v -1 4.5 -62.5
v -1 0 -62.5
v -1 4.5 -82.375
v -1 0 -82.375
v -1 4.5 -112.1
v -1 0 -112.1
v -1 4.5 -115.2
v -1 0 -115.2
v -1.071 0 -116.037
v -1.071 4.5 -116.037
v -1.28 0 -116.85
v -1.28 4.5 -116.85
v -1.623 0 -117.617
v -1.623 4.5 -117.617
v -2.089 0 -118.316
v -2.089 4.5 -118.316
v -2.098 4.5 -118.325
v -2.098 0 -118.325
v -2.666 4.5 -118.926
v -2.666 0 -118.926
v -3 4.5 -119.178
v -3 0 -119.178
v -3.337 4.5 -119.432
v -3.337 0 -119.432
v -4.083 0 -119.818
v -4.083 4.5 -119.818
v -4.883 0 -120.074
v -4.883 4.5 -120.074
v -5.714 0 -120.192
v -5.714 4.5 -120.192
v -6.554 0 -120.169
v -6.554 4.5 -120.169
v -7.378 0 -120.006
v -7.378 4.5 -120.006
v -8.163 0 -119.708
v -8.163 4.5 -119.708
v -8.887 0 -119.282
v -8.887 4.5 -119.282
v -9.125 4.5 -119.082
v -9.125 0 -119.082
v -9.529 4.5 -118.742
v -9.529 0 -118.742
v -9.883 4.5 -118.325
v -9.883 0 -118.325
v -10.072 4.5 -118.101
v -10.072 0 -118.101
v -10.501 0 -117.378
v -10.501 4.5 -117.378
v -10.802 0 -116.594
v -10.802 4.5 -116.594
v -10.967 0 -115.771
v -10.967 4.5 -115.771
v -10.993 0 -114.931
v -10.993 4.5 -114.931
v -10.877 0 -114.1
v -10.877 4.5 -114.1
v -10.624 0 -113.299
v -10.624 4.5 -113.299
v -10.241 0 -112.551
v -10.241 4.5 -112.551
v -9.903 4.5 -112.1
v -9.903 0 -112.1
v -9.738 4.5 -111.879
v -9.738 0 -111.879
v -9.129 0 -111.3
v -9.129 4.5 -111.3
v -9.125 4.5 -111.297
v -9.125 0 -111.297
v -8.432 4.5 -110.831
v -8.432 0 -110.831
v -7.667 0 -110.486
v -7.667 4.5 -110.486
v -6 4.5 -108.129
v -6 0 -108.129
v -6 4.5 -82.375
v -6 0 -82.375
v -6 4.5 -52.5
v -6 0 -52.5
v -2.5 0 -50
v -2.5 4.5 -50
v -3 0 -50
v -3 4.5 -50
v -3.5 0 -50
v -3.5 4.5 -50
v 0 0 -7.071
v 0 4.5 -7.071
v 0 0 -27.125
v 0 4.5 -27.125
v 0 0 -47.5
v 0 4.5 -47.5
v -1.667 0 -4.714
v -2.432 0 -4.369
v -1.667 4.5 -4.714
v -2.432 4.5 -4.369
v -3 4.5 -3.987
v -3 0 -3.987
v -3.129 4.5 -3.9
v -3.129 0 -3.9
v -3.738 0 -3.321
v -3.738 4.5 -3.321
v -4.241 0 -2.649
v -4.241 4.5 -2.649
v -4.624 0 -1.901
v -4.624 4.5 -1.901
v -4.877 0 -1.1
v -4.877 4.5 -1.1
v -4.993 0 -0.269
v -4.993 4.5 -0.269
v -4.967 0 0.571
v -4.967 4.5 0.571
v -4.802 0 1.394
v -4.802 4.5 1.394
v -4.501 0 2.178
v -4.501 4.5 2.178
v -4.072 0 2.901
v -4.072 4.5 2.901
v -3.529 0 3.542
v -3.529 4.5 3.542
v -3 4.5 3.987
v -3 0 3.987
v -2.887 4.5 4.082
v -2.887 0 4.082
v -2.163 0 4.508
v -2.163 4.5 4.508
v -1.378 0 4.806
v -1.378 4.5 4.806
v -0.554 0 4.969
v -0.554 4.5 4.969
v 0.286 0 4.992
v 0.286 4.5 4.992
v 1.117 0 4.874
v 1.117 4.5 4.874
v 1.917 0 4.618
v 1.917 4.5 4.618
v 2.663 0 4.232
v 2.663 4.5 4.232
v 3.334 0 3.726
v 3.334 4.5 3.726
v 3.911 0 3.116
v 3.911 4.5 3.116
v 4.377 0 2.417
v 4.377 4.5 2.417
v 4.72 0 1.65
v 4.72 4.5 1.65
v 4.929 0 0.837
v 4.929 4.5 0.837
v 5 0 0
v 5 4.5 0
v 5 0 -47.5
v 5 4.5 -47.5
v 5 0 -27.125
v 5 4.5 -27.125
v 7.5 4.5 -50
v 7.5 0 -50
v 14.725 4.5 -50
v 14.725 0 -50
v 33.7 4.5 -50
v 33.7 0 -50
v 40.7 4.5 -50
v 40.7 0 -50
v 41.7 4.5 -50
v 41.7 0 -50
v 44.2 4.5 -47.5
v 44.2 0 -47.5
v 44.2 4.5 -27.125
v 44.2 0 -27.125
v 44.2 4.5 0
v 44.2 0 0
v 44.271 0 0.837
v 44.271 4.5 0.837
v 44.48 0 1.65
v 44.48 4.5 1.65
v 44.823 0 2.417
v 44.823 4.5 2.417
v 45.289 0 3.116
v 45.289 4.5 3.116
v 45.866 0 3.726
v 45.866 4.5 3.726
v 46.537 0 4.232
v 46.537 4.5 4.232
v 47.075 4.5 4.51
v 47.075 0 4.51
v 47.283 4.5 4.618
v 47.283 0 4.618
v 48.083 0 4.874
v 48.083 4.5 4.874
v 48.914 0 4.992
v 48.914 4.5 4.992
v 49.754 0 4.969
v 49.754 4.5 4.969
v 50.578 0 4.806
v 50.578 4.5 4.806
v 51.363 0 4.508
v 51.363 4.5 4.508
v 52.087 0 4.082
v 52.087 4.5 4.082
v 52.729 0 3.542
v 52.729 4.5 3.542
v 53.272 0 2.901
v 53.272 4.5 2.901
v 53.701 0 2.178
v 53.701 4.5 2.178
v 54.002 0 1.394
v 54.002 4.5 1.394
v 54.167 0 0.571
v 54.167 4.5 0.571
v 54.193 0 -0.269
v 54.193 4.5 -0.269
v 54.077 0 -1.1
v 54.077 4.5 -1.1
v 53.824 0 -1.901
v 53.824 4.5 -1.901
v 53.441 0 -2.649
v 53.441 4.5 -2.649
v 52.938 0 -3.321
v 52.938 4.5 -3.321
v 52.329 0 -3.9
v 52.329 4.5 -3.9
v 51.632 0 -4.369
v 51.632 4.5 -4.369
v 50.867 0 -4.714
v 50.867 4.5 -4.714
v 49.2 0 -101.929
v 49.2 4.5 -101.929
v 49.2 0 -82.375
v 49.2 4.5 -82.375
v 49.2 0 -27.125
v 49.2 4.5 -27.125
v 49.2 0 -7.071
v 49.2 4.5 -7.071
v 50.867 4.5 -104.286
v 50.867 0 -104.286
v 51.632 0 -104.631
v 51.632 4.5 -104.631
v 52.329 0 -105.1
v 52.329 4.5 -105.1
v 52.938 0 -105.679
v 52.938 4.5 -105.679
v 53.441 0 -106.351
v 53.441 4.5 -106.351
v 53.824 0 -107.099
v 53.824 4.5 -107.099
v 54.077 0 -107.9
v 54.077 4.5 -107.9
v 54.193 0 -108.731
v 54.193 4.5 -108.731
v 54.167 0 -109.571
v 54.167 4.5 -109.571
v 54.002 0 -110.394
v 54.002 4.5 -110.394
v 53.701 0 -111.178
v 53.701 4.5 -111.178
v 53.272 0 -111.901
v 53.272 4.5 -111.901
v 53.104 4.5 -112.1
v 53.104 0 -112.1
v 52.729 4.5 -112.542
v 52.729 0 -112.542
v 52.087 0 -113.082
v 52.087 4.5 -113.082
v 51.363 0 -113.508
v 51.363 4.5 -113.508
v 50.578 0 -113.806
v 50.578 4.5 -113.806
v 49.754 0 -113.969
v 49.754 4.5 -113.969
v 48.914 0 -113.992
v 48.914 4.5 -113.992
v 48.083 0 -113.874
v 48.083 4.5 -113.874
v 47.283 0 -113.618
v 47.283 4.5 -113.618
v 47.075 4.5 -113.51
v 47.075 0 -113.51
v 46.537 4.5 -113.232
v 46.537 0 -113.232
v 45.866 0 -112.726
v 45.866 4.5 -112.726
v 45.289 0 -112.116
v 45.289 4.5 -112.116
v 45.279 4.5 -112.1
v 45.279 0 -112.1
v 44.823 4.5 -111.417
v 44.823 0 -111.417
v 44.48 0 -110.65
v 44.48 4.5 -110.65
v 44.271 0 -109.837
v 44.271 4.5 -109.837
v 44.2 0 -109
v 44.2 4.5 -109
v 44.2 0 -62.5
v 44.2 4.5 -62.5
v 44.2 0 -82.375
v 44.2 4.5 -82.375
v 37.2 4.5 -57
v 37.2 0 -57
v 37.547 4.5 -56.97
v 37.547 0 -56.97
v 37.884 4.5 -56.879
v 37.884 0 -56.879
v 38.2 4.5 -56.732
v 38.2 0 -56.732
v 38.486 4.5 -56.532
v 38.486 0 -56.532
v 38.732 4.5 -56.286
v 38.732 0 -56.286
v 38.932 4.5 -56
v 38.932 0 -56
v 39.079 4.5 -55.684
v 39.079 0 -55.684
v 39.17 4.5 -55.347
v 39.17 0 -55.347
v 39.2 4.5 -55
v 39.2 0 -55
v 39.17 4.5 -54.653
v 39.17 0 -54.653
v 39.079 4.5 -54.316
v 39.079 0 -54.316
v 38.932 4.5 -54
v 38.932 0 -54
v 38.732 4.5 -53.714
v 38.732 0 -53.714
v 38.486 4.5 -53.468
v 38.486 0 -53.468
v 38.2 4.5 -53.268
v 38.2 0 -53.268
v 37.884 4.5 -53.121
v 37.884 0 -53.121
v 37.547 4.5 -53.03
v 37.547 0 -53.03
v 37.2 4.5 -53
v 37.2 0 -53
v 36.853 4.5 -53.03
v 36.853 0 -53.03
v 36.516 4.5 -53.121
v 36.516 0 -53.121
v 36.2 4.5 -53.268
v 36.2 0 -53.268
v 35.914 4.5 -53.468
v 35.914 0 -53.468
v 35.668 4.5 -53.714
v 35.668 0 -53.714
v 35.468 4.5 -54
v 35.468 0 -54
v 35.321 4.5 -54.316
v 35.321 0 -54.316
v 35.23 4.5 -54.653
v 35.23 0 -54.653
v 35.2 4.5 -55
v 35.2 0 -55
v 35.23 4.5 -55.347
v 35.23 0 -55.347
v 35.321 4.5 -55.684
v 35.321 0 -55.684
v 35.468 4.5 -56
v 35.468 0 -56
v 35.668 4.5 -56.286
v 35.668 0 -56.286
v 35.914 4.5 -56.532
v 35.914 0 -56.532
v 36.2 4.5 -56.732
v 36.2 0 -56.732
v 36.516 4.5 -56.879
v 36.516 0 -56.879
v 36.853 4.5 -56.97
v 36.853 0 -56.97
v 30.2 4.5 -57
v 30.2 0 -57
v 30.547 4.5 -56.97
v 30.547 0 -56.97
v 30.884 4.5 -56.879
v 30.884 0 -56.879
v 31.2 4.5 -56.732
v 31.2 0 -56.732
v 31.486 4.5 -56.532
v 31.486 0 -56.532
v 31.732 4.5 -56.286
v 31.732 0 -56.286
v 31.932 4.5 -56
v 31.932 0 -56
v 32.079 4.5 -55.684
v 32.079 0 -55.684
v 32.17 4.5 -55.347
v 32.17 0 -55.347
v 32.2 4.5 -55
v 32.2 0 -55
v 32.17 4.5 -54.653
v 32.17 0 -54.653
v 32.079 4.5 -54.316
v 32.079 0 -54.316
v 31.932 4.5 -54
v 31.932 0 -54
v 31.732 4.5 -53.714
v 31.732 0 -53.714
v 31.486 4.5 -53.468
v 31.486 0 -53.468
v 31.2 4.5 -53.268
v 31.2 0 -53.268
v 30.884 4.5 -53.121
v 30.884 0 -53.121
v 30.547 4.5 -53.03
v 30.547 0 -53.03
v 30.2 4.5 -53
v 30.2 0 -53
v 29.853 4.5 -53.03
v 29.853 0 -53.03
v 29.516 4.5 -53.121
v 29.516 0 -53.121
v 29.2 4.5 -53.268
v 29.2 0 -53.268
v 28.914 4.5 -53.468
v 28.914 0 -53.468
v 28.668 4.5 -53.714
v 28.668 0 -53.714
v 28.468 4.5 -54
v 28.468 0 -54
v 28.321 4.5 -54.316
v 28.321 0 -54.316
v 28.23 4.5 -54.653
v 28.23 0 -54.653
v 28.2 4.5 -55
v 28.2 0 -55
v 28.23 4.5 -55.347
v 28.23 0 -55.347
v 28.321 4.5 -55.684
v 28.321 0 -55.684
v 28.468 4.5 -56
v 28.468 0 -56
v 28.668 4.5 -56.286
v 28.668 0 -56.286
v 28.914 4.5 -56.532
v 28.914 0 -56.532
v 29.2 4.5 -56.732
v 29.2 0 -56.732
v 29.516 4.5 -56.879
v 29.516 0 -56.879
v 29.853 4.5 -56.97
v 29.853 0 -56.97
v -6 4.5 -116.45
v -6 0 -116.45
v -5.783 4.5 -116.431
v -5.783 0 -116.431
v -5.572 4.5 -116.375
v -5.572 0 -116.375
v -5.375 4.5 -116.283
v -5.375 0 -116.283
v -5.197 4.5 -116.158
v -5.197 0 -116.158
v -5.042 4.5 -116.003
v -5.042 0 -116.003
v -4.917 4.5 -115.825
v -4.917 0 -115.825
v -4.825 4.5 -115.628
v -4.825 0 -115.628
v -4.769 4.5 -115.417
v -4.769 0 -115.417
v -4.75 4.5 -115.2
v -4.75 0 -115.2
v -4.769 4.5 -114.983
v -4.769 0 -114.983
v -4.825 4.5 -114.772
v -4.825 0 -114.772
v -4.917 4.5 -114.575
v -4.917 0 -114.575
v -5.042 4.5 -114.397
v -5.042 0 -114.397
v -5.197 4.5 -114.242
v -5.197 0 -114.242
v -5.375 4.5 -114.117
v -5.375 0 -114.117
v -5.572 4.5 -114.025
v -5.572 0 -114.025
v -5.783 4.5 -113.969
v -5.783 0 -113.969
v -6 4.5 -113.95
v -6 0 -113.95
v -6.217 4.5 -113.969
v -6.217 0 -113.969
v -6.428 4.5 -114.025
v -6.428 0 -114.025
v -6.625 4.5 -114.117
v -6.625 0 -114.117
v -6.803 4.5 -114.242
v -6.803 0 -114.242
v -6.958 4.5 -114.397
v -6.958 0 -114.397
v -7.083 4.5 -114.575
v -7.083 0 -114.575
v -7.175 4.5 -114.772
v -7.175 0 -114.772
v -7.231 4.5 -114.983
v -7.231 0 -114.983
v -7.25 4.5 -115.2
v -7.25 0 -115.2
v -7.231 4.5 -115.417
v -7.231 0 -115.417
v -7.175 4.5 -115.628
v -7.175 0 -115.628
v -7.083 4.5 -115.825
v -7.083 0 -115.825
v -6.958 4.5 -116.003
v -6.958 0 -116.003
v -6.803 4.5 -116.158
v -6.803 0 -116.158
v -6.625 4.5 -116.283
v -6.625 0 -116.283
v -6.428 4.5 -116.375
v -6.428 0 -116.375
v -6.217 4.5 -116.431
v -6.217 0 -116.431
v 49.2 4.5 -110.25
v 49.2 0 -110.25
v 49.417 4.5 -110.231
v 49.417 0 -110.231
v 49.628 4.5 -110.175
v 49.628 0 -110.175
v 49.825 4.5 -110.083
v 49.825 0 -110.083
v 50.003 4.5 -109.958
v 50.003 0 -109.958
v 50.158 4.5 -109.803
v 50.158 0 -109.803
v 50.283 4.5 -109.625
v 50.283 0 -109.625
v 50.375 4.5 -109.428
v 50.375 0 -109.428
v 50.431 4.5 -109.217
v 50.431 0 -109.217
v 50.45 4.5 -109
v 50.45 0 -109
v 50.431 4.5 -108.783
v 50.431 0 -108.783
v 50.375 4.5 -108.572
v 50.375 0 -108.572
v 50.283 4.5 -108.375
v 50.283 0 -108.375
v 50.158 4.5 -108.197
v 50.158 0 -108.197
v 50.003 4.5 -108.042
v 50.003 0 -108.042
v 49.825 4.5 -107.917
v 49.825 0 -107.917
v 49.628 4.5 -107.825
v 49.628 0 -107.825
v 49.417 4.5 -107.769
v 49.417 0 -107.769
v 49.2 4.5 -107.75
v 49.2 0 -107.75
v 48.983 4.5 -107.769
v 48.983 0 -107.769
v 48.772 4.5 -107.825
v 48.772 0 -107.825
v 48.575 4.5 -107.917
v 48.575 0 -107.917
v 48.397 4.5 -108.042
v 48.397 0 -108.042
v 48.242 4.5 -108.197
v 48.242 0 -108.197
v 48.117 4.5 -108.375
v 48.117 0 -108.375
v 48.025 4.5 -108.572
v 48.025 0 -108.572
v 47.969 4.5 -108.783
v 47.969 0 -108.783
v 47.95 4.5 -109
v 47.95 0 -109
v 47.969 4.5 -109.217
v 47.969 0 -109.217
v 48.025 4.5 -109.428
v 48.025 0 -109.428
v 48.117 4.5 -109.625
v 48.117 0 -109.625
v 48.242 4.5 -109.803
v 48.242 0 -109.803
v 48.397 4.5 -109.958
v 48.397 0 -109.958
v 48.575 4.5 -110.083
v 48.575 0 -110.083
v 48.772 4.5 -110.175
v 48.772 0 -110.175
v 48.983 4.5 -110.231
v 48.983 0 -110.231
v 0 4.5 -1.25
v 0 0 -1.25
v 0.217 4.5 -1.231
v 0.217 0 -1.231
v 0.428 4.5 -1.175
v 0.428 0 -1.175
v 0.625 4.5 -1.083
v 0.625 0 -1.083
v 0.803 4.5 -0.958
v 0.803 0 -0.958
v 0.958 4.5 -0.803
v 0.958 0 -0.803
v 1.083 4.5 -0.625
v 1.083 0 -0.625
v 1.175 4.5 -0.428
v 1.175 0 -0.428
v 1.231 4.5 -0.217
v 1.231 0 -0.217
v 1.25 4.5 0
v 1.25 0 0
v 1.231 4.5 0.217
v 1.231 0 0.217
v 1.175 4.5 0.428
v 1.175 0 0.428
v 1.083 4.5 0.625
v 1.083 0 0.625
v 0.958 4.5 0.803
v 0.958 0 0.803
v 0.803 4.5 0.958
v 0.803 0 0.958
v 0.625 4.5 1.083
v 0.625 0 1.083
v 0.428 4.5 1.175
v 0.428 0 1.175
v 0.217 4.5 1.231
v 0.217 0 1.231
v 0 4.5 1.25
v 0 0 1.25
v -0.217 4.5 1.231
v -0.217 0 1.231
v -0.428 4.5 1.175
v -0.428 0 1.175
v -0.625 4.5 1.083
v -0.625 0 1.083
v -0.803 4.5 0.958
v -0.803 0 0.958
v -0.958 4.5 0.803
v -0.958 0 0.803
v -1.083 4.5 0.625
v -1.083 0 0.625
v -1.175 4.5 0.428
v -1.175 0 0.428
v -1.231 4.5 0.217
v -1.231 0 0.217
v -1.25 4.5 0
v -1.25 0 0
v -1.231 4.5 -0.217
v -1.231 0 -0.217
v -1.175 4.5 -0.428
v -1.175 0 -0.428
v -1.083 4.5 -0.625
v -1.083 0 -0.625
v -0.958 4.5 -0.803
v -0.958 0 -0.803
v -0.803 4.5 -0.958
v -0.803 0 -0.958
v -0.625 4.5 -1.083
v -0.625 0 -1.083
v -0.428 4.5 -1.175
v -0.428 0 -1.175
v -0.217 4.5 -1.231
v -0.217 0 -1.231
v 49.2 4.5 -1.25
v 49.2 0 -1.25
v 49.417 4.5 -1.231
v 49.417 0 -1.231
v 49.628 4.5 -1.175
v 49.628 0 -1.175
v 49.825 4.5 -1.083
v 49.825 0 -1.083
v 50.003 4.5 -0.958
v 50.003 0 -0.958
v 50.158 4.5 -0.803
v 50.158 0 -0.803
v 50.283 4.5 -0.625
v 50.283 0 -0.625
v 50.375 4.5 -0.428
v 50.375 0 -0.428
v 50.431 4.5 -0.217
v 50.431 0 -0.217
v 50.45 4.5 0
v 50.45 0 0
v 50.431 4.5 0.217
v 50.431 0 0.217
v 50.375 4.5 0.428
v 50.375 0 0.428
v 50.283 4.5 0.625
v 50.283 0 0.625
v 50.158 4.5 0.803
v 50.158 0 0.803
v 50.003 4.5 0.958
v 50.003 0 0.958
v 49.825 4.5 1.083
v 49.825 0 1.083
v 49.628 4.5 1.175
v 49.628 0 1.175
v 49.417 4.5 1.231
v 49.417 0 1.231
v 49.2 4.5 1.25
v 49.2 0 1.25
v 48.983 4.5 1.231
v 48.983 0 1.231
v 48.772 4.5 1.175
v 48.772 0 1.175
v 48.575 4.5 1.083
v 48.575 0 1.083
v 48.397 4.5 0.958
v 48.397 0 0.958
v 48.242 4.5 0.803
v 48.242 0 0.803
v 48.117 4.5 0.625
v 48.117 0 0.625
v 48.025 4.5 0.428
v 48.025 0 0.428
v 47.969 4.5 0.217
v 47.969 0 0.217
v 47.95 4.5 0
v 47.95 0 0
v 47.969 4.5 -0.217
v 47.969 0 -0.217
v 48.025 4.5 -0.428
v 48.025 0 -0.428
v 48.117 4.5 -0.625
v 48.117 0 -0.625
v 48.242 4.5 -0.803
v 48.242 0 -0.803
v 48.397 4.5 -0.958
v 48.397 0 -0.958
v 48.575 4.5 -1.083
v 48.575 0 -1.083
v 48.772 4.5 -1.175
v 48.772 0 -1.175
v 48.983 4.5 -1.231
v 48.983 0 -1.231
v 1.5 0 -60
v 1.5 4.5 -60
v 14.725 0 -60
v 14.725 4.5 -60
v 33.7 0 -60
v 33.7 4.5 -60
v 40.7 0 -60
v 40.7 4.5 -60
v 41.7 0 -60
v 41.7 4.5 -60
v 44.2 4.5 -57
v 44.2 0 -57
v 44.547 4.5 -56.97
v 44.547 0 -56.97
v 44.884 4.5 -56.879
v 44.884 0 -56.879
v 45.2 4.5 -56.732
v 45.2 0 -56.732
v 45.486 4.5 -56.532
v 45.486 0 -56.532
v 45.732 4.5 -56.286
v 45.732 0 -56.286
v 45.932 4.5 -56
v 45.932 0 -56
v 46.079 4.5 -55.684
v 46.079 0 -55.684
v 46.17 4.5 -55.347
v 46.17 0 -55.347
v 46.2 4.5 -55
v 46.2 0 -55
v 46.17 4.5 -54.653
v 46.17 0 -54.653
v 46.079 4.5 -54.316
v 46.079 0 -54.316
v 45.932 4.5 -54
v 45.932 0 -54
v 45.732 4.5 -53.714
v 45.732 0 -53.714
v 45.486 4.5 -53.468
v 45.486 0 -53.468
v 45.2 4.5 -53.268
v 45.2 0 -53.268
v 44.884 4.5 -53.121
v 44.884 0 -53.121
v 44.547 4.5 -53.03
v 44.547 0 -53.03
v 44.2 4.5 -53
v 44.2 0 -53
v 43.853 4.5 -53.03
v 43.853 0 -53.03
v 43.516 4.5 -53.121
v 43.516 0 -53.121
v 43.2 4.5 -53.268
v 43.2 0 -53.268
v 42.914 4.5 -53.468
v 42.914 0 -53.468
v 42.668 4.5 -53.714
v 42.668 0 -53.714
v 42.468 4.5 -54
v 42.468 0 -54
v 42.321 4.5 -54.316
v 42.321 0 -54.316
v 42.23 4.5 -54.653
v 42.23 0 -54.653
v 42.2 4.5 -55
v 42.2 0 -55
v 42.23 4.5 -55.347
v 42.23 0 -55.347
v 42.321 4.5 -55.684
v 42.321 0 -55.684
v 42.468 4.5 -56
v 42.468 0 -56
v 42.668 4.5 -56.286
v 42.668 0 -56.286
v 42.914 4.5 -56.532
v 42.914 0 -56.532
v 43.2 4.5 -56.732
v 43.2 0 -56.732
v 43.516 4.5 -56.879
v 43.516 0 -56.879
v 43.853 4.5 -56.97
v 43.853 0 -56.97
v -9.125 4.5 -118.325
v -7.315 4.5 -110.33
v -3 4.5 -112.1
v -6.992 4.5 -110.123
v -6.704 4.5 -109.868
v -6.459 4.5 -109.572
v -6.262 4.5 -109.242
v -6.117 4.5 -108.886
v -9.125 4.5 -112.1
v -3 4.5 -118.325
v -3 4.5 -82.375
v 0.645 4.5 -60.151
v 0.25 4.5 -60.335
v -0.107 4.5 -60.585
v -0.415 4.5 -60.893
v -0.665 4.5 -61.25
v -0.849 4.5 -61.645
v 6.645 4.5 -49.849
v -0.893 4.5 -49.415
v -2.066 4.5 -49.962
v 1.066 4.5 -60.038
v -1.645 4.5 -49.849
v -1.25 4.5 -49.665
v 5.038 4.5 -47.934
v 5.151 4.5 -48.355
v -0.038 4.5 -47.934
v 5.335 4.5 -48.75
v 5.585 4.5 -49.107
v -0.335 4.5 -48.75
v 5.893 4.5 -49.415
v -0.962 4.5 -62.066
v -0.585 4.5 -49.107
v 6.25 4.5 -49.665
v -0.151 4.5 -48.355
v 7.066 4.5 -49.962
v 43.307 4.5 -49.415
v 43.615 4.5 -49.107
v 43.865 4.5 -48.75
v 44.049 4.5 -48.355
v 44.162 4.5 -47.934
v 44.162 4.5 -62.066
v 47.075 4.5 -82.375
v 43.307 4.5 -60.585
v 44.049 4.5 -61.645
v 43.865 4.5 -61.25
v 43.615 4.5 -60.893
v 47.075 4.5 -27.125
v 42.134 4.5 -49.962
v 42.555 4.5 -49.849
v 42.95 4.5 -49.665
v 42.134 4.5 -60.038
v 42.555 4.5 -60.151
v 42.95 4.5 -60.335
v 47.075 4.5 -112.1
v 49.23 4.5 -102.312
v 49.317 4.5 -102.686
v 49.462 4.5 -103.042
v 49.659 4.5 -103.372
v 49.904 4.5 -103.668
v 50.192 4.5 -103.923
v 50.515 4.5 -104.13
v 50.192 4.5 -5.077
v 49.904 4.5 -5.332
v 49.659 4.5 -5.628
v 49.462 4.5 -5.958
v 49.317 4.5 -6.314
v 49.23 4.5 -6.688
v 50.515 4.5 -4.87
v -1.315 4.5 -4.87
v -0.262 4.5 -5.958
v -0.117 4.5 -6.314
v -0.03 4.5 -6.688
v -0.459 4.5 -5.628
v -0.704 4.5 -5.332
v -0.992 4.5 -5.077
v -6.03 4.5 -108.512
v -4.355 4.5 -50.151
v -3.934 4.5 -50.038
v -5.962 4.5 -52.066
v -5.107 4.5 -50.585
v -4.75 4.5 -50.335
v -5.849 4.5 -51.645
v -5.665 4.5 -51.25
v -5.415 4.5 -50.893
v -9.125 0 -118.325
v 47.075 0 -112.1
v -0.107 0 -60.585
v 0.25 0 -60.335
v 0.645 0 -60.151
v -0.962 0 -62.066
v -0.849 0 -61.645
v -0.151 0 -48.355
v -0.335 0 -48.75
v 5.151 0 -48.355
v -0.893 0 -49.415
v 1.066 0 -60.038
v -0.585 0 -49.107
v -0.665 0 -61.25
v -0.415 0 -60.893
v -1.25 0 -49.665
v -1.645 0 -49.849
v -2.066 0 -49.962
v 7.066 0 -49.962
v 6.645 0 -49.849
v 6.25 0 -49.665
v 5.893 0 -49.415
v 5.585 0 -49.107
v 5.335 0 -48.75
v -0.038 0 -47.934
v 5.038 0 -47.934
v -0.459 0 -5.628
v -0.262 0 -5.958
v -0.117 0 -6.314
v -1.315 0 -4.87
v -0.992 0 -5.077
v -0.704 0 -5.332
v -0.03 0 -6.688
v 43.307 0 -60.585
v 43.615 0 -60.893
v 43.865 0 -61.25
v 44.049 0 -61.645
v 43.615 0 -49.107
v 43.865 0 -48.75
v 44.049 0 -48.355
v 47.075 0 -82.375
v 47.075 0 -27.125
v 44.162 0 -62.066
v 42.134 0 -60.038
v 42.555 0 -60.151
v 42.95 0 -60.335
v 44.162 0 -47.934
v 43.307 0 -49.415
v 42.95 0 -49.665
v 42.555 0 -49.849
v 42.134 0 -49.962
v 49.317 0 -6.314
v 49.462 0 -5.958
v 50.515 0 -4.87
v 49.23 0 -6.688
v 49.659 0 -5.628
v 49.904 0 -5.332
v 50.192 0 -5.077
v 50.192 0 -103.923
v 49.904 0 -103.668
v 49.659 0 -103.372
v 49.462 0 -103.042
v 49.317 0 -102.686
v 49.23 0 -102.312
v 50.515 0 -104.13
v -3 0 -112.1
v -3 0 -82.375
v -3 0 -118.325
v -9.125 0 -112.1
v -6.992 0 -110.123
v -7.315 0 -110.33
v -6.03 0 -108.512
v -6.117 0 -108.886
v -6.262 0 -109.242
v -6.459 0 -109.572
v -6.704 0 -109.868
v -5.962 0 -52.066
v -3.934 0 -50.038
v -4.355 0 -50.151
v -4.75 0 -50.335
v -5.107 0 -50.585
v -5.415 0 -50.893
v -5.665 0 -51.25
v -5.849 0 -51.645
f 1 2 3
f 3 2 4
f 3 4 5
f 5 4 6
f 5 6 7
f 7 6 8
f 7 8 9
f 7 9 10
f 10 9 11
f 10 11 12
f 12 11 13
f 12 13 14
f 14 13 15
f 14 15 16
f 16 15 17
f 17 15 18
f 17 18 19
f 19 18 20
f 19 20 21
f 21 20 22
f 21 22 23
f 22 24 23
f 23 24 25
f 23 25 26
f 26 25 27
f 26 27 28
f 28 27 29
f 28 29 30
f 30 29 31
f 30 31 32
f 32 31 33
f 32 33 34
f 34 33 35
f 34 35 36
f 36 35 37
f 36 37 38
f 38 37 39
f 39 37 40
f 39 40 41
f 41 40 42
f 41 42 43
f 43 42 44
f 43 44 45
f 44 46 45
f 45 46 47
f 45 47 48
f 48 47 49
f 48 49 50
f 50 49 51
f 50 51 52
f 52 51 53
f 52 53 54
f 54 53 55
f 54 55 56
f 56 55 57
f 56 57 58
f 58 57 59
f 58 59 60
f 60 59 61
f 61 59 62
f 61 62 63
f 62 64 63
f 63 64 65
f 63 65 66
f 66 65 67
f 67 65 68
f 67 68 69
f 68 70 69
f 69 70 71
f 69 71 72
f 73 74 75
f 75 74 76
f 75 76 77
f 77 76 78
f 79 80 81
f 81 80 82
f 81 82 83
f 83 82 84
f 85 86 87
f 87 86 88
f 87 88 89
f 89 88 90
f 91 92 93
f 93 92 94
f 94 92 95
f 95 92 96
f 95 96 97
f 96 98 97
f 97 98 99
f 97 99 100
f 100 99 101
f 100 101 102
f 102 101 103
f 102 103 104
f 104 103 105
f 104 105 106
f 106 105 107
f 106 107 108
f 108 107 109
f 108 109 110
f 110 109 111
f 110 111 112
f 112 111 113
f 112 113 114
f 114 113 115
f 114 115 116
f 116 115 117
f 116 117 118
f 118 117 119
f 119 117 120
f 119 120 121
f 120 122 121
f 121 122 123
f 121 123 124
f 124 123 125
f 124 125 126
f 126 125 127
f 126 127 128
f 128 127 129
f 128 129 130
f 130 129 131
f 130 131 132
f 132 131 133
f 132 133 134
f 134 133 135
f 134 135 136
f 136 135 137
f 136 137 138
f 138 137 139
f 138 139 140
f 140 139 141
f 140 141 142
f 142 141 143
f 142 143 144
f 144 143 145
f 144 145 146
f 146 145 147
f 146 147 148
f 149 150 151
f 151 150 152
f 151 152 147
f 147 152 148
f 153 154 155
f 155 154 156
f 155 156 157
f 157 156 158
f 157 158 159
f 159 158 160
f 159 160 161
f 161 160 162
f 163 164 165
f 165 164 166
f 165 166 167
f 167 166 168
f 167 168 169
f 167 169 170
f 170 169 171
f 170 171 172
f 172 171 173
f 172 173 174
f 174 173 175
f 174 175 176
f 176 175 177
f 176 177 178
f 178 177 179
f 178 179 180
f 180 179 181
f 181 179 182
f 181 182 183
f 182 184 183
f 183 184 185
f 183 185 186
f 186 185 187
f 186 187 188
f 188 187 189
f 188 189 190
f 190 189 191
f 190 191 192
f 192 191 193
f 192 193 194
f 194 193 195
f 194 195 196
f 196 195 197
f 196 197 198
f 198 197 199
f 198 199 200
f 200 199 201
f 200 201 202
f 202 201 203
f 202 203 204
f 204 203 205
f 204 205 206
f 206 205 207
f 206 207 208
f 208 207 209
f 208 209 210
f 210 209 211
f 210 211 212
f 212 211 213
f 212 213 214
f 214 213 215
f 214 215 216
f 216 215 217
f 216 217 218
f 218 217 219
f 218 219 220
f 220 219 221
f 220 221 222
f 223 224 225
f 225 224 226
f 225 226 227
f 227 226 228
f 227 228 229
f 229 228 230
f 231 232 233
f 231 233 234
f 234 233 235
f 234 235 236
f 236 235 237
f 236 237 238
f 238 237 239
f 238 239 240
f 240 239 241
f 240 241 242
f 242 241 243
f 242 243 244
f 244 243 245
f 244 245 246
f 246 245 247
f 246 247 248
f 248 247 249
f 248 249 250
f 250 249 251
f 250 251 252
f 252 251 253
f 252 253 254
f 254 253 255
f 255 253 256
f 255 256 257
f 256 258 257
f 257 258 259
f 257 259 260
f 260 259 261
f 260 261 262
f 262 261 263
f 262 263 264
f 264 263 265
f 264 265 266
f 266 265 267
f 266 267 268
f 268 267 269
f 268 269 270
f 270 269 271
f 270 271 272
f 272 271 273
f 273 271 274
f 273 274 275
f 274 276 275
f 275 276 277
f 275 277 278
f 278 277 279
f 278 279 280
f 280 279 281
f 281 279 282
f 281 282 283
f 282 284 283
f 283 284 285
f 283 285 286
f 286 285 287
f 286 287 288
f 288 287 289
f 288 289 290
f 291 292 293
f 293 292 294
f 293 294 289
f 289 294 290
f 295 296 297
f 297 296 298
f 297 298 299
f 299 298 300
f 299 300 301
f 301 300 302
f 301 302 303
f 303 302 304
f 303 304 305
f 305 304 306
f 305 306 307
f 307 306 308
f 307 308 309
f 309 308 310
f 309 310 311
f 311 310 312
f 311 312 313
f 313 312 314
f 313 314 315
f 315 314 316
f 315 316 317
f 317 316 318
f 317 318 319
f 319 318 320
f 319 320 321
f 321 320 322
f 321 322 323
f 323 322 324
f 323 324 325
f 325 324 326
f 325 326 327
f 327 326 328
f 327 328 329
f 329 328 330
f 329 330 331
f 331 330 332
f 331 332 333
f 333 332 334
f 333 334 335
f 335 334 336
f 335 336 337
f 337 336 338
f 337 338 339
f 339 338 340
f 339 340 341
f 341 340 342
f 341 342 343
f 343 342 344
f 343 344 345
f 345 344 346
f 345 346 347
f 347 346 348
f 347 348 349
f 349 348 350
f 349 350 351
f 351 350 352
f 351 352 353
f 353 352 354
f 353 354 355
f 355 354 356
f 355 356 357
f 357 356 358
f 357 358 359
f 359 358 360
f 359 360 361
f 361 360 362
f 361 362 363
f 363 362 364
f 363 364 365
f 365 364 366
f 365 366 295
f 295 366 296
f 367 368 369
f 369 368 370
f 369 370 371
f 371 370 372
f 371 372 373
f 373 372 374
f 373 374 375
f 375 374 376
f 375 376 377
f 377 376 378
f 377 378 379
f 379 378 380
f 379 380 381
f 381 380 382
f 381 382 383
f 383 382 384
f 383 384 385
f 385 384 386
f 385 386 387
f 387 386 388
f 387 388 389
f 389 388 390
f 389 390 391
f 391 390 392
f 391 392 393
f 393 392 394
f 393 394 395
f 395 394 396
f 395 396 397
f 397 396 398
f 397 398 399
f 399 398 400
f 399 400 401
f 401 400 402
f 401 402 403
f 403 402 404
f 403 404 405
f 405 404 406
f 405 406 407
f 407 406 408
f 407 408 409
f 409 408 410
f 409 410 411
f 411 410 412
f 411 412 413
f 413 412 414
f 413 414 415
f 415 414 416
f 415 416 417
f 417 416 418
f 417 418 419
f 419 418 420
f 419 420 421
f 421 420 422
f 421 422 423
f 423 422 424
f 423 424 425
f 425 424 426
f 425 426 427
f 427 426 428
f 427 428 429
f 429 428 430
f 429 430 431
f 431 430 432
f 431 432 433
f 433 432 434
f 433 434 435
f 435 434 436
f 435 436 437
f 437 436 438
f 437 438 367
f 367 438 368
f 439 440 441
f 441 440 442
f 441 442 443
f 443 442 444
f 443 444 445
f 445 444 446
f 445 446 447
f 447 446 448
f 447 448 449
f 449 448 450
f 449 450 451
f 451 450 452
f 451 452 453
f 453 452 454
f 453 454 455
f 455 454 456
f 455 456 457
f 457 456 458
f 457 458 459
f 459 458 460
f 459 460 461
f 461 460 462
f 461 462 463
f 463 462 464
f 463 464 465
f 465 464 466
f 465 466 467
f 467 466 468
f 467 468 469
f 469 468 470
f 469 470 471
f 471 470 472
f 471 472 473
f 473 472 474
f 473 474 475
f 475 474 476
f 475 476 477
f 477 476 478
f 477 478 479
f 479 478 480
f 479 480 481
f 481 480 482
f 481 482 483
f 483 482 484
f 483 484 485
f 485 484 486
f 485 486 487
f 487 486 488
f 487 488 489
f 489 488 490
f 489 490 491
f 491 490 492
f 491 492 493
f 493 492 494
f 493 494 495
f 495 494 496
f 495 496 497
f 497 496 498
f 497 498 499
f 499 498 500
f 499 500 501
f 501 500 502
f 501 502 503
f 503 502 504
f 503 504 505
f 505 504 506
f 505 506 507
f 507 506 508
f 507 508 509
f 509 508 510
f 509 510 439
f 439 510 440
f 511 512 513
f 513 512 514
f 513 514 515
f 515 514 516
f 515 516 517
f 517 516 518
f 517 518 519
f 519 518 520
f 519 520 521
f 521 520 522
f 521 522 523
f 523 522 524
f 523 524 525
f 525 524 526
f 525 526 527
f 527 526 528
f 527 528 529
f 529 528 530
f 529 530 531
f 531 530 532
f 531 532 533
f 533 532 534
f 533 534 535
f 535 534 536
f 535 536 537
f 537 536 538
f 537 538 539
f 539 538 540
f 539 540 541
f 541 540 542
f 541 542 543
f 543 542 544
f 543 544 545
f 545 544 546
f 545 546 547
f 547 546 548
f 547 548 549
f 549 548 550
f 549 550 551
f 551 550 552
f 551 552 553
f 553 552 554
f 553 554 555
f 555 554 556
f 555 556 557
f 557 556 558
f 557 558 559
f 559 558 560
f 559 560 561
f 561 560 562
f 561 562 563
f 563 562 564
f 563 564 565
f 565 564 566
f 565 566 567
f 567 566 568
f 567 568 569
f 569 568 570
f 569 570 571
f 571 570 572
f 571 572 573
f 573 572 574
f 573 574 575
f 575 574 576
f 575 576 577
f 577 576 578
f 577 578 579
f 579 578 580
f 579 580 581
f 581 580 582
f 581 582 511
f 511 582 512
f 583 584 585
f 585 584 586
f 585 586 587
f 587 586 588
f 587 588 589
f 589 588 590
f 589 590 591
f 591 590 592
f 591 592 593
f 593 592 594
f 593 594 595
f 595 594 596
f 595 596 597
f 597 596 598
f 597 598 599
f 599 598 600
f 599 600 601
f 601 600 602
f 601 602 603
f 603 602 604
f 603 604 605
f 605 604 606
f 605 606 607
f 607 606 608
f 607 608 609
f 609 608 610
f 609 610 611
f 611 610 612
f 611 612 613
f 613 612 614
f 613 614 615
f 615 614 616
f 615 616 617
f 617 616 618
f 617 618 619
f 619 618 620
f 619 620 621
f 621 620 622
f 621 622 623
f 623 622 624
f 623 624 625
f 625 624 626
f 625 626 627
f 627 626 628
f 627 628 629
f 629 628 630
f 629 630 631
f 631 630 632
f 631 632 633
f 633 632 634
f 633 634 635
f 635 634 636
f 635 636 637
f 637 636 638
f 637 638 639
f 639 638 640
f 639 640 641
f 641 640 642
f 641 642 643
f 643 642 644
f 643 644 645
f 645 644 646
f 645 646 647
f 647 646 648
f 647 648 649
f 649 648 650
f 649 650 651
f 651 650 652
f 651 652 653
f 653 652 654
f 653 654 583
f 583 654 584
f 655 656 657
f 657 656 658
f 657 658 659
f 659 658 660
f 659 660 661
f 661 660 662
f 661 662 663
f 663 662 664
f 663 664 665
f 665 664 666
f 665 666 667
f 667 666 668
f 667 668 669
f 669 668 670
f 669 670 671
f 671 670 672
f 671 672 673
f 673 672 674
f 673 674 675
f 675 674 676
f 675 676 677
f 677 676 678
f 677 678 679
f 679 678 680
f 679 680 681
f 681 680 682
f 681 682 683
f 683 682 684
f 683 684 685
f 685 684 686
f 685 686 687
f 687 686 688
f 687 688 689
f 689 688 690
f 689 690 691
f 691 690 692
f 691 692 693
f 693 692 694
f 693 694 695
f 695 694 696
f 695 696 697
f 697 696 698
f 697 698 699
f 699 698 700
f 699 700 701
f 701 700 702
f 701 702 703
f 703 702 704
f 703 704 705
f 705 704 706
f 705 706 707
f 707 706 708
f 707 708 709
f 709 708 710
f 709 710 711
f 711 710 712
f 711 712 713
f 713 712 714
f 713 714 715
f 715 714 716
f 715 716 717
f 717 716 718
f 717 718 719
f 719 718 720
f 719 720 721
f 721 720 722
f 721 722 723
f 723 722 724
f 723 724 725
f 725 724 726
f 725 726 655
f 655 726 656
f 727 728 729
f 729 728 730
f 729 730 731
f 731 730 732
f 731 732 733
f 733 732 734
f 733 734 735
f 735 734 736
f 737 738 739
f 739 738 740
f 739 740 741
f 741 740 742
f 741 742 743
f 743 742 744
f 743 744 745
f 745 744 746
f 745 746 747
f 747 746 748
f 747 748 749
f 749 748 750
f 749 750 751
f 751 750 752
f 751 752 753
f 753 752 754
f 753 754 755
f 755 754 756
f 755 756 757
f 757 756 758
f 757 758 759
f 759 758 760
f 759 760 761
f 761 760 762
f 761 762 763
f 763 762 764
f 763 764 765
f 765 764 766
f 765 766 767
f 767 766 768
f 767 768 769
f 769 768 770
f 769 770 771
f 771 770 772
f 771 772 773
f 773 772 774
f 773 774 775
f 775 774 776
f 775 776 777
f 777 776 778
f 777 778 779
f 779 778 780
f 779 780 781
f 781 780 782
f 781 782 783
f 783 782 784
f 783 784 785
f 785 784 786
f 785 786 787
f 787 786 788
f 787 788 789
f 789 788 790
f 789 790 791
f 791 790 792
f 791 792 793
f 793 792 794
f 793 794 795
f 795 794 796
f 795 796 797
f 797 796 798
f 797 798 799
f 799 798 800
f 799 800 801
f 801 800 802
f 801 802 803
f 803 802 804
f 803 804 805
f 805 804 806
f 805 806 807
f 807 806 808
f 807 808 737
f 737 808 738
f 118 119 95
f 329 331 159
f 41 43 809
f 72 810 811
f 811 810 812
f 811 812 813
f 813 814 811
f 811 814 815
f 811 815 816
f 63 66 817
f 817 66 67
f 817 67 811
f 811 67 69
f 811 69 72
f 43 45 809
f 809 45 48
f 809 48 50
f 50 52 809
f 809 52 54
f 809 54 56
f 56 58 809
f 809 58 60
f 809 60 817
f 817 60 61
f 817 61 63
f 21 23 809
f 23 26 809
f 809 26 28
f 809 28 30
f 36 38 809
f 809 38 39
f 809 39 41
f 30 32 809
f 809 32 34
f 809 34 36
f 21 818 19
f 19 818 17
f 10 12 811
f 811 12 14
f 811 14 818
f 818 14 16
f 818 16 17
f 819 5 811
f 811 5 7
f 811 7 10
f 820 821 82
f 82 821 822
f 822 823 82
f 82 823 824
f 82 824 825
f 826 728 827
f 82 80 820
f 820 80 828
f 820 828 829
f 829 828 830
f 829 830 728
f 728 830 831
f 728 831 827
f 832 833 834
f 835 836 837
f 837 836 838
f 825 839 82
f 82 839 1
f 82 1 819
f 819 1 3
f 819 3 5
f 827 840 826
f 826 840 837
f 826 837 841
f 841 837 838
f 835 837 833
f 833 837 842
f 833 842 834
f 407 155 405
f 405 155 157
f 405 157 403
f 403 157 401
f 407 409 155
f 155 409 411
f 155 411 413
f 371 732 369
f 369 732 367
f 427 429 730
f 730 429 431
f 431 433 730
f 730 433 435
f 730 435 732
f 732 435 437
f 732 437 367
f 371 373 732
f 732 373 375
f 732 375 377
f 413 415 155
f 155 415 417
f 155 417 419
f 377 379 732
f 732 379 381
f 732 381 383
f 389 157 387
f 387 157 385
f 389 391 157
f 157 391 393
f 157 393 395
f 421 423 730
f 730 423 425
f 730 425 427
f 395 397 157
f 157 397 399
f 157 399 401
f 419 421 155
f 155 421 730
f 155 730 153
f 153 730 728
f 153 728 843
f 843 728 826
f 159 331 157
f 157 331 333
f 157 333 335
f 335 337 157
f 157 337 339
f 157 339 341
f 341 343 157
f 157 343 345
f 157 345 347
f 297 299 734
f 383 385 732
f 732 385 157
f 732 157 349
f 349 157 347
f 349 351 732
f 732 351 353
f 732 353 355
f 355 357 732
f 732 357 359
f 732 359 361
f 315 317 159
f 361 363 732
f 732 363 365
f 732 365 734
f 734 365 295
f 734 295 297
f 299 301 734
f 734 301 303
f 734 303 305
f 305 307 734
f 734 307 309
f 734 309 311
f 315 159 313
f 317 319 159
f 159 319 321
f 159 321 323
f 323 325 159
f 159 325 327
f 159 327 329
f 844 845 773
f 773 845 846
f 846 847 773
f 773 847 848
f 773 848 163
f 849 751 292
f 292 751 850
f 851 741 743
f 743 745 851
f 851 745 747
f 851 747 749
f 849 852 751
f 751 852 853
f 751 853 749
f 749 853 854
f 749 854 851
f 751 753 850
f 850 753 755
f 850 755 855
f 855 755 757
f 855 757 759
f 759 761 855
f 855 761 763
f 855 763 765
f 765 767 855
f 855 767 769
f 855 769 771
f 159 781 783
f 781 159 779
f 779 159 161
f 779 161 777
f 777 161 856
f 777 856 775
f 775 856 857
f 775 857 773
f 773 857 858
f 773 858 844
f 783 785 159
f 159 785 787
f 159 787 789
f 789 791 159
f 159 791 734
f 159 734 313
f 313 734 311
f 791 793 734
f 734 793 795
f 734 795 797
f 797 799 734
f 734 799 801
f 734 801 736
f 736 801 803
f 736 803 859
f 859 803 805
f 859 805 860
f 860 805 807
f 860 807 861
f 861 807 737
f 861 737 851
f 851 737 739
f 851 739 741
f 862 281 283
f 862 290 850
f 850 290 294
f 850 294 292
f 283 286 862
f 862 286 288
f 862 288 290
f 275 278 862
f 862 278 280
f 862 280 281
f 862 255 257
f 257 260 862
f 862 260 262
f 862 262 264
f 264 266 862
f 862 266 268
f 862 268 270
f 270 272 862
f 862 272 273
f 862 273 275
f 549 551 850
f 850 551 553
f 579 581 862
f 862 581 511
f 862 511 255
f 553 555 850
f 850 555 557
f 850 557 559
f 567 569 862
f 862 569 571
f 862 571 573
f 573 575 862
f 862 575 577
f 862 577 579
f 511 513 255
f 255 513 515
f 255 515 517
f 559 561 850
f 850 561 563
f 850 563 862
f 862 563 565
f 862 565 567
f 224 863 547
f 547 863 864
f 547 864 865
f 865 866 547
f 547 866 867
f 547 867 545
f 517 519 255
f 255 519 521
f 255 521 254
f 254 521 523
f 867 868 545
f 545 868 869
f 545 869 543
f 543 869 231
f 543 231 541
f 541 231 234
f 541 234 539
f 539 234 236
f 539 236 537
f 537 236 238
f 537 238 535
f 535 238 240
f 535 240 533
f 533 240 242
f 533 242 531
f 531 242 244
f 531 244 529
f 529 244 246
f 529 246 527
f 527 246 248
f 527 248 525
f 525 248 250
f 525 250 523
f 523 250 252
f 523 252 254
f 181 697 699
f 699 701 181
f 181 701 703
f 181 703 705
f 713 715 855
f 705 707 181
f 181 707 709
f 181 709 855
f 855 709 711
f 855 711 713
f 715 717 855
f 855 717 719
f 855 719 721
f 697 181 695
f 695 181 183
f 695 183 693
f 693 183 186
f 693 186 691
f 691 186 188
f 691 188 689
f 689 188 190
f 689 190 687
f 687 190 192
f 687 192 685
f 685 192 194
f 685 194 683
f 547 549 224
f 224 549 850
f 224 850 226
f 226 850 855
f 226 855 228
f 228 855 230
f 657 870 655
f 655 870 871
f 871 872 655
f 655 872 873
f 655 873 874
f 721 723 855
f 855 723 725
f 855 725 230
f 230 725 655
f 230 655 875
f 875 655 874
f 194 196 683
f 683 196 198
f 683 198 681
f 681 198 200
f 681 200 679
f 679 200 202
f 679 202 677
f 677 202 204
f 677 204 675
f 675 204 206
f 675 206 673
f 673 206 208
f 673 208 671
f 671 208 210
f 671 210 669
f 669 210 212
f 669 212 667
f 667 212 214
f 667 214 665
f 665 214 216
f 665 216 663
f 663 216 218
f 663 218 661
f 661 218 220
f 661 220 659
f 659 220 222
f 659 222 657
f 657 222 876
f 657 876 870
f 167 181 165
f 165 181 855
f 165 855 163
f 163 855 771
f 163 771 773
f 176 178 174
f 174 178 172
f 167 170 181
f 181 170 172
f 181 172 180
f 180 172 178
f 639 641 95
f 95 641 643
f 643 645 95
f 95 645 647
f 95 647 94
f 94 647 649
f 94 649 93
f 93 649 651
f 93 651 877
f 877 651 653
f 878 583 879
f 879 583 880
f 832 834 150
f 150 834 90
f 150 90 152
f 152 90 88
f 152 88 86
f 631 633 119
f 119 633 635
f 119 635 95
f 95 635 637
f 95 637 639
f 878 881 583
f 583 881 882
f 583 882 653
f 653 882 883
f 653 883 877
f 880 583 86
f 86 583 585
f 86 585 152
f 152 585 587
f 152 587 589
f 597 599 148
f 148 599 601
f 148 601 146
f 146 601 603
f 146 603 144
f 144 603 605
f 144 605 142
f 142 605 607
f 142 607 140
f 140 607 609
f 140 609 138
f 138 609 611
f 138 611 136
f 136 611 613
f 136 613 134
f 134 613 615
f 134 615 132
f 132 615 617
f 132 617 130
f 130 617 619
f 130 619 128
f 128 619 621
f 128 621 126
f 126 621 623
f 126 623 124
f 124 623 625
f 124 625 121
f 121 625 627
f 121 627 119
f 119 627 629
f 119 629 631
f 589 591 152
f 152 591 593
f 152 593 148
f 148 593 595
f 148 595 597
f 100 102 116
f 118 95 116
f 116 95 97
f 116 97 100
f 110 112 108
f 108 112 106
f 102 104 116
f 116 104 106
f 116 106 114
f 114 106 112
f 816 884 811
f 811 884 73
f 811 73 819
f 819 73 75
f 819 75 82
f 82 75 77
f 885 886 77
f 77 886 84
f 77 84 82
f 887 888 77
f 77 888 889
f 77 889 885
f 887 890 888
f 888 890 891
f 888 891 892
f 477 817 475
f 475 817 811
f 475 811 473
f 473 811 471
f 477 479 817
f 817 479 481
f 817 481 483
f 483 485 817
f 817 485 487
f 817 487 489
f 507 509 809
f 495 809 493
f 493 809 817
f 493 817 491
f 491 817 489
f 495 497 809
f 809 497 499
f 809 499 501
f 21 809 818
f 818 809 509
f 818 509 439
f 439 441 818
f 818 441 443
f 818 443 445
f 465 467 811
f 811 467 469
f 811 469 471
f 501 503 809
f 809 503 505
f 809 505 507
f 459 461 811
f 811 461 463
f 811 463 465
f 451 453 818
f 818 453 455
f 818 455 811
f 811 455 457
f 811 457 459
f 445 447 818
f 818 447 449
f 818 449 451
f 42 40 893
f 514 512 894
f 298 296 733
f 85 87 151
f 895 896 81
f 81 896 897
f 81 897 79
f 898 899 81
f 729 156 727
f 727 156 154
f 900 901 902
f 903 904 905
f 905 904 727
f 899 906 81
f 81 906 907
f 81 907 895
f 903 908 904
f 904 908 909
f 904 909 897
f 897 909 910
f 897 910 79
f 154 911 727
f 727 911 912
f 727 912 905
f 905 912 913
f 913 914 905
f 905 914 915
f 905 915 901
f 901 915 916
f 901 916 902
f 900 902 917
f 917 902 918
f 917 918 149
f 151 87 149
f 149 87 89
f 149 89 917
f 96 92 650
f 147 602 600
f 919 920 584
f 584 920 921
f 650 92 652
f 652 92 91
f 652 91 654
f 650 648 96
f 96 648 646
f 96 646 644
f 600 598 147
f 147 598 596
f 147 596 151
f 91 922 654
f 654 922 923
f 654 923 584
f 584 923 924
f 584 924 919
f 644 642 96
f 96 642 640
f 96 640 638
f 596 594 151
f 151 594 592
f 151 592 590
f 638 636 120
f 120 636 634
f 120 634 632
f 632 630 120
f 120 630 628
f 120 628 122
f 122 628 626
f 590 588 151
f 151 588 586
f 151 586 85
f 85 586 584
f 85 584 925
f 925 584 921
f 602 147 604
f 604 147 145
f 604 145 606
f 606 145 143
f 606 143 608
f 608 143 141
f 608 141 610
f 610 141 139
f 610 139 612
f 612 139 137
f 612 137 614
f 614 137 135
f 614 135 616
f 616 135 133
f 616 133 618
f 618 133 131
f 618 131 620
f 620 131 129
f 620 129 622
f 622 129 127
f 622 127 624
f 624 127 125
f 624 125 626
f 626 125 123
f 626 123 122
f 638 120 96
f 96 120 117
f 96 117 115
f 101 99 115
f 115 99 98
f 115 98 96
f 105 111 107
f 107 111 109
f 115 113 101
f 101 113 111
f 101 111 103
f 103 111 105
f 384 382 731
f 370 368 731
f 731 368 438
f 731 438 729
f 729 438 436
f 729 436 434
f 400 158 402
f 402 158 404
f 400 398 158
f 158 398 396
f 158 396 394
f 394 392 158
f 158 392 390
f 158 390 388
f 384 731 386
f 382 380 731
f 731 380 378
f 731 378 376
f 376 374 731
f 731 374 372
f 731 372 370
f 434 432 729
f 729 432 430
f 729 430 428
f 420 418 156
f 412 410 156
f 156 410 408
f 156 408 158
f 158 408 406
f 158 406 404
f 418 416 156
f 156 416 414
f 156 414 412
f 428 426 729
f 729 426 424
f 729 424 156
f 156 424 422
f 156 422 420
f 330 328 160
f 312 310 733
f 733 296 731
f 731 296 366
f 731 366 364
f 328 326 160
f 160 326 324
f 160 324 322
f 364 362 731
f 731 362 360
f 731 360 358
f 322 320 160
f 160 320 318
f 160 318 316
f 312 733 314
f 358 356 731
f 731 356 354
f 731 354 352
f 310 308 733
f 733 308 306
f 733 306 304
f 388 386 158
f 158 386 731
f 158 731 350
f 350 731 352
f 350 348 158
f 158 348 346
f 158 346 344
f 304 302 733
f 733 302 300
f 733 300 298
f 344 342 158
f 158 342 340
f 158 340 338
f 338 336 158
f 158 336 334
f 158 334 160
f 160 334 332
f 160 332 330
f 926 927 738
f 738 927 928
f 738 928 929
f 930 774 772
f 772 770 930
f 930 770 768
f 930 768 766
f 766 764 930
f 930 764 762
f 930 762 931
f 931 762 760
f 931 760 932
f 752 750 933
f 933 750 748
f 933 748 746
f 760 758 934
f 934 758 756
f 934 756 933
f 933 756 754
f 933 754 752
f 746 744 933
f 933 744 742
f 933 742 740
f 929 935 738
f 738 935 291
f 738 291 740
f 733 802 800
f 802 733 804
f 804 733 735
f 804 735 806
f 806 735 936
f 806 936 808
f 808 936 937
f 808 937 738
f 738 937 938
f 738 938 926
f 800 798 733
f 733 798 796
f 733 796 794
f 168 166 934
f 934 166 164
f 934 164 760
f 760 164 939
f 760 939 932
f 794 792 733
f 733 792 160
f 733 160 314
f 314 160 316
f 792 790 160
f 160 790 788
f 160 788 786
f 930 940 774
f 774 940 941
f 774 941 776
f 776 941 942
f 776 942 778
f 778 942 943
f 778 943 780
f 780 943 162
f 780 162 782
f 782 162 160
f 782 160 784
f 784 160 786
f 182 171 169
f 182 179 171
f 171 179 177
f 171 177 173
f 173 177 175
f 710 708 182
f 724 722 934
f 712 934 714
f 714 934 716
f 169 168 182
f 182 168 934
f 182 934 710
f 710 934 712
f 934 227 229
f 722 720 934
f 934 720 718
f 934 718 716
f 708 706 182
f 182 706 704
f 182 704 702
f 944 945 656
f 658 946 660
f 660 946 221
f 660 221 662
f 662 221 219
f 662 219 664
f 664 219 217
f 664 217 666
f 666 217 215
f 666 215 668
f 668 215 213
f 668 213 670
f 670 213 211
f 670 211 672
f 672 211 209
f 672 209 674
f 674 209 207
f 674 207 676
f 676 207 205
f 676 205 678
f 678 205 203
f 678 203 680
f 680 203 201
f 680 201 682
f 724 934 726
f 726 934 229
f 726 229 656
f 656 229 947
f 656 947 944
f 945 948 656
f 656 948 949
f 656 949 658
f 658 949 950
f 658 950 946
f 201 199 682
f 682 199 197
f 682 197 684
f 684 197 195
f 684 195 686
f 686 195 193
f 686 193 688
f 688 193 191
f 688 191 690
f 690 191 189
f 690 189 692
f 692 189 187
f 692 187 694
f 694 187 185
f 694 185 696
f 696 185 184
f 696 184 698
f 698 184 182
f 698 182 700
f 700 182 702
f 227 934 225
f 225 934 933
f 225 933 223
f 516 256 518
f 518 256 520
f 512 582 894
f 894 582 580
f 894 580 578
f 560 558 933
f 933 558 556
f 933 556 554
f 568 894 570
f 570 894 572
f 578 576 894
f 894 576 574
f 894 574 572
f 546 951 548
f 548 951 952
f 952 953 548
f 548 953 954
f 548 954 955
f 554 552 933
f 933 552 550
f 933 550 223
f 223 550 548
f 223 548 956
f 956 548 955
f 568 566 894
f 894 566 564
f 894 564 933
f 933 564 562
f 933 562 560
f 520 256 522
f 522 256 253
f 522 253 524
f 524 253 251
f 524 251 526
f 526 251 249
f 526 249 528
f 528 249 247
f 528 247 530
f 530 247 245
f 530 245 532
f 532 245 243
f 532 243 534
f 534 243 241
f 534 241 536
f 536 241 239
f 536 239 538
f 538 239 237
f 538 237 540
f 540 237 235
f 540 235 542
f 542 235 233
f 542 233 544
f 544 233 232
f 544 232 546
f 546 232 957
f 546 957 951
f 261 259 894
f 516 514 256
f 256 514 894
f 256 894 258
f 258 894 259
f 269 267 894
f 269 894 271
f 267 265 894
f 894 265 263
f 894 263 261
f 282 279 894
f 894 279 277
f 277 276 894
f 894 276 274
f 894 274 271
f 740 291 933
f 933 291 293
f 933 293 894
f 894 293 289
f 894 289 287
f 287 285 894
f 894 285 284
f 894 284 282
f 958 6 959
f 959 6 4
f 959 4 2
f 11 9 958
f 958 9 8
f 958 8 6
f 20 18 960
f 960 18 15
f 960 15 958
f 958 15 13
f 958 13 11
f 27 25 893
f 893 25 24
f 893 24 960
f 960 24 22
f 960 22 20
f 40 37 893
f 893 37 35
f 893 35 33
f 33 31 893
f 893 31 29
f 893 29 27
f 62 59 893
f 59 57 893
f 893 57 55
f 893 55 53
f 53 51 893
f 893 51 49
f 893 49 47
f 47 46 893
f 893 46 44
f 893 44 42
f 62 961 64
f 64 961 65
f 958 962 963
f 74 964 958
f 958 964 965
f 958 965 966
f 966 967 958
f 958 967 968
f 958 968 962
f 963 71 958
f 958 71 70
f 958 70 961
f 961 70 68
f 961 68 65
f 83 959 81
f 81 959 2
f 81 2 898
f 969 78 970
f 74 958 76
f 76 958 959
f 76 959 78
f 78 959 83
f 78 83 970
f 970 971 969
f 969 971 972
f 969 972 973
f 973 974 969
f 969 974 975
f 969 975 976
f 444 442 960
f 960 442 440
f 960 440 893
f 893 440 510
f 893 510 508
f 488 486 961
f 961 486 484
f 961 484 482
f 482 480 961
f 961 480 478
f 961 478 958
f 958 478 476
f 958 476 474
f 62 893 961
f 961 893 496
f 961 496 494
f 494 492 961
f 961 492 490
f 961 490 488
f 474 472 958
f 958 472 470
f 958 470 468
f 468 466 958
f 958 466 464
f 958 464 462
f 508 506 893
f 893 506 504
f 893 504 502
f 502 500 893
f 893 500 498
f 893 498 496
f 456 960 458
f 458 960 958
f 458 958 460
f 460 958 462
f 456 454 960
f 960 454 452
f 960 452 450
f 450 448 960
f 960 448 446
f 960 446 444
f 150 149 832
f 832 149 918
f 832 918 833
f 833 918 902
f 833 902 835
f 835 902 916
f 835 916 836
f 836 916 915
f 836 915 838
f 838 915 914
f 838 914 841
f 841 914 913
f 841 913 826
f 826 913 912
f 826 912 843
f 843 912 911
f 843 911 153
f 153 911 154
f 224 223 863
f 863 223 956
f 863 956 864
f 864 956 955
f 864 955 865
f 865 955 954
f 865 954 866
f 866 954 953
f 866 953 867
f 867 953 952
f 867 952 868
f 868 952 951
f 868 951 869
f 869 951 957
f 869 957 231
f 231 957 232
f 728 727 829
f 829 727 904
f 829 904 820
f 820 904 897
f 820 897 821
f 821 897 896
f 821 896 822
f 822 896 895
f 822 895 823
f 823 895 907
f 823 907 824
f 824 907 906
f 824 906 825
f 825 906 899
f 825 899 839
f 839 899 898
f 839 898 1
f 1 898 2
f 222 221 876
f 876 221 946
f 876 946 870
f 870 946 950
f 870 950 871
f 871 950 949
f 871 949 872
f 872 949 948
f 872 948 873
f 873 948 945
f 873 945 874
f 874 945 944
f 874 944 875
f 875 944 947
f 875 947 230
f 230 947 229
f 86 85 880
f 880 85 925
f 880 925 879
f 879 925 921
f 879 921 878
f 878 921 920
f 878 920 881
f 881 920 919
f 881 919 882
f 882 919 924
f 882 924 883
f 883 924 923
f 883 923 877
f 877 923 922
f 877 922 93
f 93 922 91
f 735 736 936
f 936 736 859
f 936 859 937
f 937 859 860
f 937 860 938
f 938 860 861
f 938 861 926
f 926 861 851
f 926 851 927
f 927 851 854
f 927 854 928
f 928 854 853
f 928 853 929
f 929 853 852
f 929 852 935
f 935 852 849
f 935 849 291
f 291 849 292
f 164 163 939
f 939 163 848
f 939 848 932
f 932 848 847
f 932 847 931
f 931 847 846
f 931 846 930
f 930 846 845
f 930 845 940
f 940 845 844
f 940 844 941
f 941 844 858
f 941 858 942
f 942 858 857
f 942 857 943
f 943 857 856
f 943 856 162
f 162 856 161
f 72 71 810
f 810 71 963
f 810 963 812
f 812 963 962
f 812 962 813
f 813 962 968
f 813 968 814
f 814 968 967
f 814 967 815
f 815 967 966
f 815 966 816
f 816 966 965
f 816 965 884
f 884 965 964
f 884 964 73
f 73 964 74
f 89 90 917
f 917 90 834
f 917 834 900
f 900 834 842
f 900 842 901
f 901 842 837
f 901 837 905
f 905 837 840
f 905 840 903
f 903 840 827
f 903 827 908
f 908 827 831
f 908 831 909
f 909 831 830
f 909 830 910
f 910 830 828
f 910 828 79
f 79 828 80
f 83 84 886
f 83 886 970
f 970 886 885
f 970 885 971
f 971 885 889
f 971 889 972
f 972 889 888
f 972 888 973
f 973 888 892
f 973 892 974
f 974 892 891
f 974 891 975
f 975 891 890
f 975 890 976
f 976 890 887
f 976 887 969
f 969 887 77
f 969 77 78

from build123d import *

# Parameters (mm, degrees)
SKETCH1_R           = 1.25
SKETCH1_R_2         = 2
BOSS_EXTRUDE1_DEPTH = 4.5
FILLET5_R           = 2.5


with BuildPart() as part:
    # Sketch1 → Boss-Extrude1 (new body)
    with BuildSketch(Plane(origin=(0, 0, 0), x_dir=(1, 0, 0), z_dir=(0, 1, 0))):
        with BuildLine():
            Line((-6, 50), (0, 50))
            Line((0, 50), (0, 5))
            ThreePointArc((0, 5), (-3.535533906, -3.535533906), (5, 0))
            Line((5, 0), (5, 50))
            Line((5, 50), (44.2, 50))
            Line((44.2, 50), (44.2, 0))
            ThreePointArc((44.2, 0), (52.735533906, -3.535533906), (49.2, 5))
            Line((49.2, 5), (49.2, 50))
            Line((49.2, 50), (49.2, 60))
            Line((49.2, 60), (49.2, 104))
            ThreePointArc((49.2, 104), (52.735533906, 112.535533906), (44.2, 109))
            Line((44.2, 109), (44.2, 60))
            Line((44.2, 60), (-1, 60))
            Line((-1, 60), (-1, 115.2))
            ThreePointArc((-1, 115.2), (-9.535533906, 118.735533906), (-6, 110.2))
            Line((-6, 110.2), (-6, 60))
            Line((-6, 60), (-6, 50))
        make_face()
        Circle(SKETCH1_R, mode=Mode.SUBTRACT)
        with Locations((49.2, 0)):
            Circle(SKETCH1_R, mode=Mode.SUBTRACT)
        with Locations((30.2, 55)):
            Circle(SKETCH1_R_2, mode=Mode.SUBTRACT)
        with Locations((37.2, 55)):
            Circle(SKETCH1_R_2, mode=Mode.SUBTRACT)
        with Locations((44.2, 55)):
            Circle(SKETCH1_R_2, mode=Mode.SUBTRACT)
        with Locations((-6, 115.2)):
            Circle(SKETCH1_R, mode=Mode.SUBTRACT)
        with Locations((49.2, 109)):
            Circle(SKETCH1_R, mode=Mode.SUBTRACT)
    extrude(amount=BOSS_EXTRUDE1_DEPTH)

    # Fillet5
    fillet5_edges = [part.edges().sort_by_distance(p)[0] for p in [
        (-1, 2.25, -60),
        (44.2, 2.25, -60),
        (49.2, 2.25, -104),
        (49.2, 2.25, -5),
        (44.2, 2.25, -50),
        (5, 2.25, -50),
        (0, 2.25, -5),
        (0, 2.25, -50),
        (-6, 2.25, -50),
        (-6, 2.25, -110.2),
    ]]
    fillet(fillet5_edges, radius=FILLET5_R)


solid = part.part
